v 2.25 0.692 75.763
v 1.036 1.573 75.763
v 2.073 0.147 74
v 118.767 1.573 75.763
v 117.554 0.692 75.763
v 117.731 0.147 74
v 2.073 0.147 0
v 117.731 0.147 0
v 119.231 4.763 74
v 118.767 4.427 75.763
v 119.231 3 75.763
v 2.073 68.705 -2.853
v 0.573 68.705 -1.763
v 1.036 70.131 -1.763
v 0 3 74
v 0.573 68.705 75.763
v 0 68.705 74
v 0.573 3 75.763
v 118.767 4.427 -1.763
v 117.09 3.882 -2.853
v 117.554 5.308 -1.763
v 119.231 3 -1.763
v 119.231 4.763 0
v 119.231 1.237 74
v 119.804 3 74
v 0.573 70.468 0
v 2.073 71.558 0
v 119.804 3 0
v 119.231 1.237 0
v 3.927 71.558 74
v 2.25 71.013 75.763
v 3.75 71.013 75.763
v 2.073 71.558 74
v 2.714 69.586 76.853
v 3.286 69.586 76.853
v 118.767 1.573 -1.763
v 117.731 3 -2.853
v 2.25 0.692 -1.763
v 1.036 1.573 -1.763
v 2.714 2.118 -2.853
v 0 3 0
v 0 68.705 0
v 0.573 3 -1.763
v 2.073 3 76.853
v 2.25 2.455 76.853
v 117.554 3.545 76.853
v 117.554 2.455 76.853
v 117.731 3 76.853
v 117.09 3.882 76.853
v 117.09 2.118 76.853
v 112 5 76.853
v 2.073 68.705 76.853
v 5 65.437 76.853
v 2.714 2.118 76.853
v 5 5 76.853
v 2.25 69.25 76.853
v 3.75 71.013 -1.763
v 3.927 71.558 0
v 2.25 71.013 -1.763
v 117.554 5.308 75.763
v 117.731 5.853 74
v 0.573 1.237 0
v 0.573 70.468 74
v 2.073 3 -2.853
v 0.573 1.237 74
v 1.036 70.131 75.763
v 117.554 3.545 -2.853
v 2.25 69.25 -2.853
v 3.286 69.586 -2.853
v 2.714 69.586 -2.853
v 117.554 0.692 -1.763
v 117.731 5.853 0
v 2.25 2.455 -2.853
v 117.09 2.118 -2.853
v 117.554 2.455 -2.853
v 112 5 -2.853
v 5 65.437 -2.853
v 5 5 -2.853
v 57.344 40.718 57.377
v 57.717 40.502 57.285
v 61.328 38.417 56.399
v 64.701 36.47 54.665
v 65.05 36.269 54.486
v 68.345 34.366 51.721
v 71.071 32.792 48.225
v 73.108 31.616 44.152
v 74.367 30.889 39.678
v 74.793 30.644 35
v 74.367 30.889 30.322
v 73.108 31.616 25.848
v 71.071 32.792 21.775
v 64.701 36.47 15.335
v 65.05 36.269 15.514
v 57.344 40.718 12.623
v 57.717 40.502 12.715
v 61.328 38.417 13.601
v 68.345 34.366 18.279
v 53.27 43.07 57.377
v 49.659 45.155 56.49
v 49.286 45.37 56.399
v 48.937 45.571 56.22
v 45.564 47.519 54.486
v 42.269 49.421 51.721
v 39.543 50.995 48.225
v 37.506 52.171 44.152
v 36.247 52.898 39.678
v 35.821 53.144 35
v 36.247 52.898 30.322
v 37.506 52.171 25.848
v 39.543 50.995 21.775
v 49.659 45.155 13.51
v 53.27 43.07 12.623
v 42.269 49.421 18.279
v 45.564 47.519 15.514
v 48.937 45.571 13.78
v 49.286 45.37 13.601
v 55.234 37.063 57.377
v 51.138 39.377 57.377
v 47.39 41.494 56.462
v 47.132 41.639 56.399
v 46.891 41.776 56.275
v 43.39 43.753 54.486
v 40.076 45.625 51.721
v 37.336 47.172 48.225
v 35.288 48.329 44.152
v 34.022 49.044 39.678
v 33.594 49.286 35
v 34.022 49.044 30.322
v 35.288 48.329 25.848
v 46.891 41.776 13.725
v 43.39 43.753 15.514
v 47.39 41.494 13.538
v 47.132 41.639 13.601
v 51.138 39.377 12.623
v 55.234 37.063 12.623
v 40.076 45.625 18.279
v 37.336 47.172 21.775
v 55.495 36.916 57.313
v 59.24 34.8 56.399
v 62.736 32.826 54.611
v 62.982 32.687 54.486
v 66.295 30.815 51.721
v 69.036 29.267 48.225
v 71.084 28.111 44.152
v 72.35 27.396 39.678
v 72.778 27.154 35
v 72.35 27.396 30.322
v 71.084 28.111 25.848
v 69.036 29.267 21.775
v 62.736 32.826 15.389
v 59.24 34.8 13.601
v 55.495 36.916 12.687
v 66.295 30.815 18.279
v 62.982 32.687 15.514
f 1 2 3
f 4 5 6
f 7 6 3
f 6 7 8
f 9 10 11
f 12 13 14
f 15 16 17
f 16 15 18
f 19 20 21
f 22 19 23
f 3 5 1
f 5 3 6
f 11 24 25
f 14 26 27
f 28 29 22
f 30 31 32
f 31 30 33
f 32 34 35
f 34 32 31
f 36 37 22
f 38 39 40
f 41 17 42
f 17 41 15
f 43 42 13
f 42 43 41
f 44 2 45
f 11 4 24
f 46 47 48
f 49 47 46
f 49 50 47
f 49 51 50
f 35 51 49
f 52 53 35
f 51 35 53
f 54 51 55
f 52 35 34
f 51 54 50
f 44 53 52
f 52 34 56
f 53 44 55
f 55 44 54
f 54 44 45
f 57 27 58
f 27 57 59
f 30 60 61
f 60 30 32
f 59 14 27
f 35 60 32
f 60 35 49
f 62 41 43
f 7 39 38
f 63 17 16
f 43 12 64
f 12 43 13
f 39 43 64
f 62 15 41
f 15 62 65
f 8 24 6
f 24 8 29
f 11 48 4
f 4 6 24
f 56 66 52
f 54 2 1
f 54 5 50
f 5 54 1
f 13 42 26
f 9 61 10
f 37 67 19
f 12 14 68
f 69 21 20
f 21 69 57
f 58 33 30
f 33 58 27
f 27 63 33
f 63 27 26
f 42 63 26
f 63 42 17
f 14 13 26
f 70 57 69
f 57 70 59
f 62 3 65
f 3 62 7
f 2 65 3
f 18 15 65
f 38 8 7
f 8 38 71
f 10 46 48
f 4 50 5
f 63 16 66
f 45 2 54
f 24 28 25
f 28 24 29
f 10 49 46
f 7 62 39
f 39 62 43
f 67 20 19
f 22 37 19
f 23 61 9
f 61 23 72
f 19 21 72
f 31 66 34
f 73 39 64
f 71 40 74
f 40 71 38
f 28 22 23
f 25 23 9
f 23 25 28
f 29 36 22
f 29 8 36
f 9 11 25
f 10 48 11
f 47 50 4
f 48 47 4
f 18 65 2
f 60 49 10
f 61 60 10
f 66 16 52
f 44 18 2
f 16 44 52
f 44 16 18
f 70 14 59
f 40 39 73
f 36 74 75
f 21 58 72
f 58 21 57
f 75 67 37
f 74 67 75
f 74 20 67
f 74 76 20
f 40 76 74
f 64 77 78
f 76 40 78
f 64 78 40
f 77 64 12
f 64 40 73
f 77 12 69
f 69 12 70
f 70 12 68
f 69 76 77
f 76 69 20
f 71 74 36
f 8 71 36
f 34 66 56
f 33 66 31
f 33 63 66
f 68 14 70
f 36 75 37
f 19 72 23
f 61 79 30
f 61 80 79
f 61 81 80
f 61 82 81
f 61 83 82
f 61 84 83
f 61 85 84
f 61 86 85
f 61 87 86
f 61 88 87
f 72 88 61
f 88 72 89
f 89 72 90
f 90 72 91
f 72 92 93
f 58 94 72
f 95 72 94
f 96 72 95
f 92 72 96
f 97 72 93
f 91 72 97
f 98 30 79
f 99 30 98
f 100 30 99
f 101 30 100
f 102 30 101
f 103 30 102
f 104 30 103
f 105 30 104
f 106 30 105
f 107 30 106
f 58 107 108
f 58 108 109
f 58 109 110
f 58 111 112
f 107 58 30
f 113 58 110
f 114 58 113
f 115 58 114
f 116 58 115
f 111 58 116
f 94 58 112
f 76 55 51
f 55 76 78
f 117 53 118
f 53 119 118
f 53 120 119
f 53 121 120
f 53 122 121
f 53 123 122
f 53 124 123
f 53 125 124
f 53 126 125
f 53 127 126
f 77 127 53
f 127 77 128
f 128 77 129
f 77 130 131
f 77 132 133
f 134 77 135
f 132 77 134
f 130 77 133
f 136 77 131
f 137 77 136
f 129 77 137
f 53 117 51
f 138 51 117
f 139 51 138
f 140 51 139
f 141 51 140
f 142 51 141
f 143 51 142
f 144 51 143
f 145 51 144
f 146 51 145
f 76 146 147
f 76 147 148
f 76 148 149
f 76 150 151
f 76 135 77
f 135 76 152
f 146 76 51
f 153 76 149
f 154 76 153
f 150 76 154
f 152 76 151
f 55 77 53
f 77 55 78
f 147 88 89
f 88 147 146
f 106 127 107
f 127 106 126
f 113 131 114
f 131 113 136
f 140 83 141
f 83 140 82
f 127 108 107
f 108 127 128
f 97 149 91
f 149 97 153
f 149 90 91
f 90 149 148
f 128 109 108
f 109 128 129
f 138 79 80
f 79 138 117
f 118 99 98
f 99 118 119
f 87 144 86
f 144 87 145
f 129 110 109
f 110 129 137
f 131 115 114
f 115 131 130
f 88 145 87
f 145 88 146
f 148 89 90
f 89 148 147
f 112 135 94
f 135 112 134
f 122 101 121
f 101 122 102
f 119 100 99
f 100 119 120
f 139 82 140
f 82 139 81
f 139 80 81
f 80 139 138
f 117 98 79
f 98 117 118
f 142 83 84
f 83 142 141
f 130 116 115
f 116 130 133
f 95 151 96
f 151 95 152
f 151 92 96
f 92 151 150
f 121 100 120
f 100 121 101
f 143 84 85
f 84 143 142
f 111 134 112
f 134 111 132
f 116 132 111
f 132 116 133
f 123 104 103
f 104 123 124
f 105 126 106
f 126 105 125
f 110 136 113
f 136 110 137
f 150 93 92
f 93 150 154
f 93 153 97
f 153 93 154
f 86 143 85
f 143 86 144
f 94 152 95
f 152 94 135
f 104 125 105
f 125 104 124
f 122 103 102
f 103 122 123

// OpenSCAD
// 元の穴位置に戻した三角柱
// パラメータ
base_length = 128;      // 底辺の長さ (mm)
prism_height = 80;     // 三角柱の高さ (mm)
corner_radius = 3;      // 角の丸みの半径 (mm)
side_wall_thickness = 3;  // 側面の壁の厚さ (mm)
base_wall_thickness = 3; // 底辺の壁の厚さ (mm)
hole_diameter = 45;     // 穴の直径 (mm)
$fn = 0;               // 丸みの解像度

// 三角形の高さを計算（底辺×tan(30°)）
triangle_height = base_length * tan(30);

// 外側三角形
module outer_triangle() {
    polygon(points=[
        [0, 0],               // 左下（直角の点）
        [base_length, 0],     // 右下（60度の角）
        [0, triangle_height]  // 左上（30度の角）
    ]);
}

// 内側三角形（調整済み）
module inner_triangle() {
    // 内側の三角形の寸法を計算
    // 底辺の壁厚を考慮
    inner_base = base_length - (2 * side_wall_thickness);
    // 高さは角度30度を保つために調整
    inner_height = inner_base * tan(30);
    // 内側三角形の位置調整（底部から上に、左端から右に）
    x_offset = side_wall_thickness+ 2;
    y_offset = base_wall_thickness+ 2;
    
    translate([x_offset, y_offset, 0])
        polygon(points=[
            [0, 0],                  // 左下（直角の点）
            [inner_base-15, 0],         // 右下（60度の角）
            [0, inner_height-10]        // 左上（30度の角）
        ]);
}

// 角の丸い三角柱モジュール
module rounded_triangular_prism(depth, radius) {
    minkowski() {
        // 縮小した三角形
        linear_extrude(height=depth-radius*2)
            offset(r=-radius)
                outer_triangle();
        
        // 球との合成で角を丸める
        sphere(r=radius);
    }
}

// メイン処理
difference() {
    // 外側の角丸三角柱
    rounded_triangular_prism(prism_height, corner_radius);
    
    // 内側の三角柱（完全くり抜き）
    translate([0, 0, -5])
        linear_extrude(height=prism_height + 10)
            inner_triangle();
    
    // 斜面に穴をあける（元の中央位置）
    // 三角形の斜辺の長さと角度を計算
    hypotenuse_length = sqrt(pow(base_length, 2) + pow(triangle_height, 2));
    hypotenuse_angle = atan2(triangle_height, base_length);
    
    // 斜面の中央に穴を配置
    translate([base_length/2, triangle_height/2, prism_height/2])
        // 斜面に対して垂直になるよう回転
        rotate([0, 0, -hypotenuse_angle])
        rotate([90, 0, 0])
        translate([-10,-5,-60])
        cylinder(h=hypotenuse_length, d=hole_diameter, center=true);
}
